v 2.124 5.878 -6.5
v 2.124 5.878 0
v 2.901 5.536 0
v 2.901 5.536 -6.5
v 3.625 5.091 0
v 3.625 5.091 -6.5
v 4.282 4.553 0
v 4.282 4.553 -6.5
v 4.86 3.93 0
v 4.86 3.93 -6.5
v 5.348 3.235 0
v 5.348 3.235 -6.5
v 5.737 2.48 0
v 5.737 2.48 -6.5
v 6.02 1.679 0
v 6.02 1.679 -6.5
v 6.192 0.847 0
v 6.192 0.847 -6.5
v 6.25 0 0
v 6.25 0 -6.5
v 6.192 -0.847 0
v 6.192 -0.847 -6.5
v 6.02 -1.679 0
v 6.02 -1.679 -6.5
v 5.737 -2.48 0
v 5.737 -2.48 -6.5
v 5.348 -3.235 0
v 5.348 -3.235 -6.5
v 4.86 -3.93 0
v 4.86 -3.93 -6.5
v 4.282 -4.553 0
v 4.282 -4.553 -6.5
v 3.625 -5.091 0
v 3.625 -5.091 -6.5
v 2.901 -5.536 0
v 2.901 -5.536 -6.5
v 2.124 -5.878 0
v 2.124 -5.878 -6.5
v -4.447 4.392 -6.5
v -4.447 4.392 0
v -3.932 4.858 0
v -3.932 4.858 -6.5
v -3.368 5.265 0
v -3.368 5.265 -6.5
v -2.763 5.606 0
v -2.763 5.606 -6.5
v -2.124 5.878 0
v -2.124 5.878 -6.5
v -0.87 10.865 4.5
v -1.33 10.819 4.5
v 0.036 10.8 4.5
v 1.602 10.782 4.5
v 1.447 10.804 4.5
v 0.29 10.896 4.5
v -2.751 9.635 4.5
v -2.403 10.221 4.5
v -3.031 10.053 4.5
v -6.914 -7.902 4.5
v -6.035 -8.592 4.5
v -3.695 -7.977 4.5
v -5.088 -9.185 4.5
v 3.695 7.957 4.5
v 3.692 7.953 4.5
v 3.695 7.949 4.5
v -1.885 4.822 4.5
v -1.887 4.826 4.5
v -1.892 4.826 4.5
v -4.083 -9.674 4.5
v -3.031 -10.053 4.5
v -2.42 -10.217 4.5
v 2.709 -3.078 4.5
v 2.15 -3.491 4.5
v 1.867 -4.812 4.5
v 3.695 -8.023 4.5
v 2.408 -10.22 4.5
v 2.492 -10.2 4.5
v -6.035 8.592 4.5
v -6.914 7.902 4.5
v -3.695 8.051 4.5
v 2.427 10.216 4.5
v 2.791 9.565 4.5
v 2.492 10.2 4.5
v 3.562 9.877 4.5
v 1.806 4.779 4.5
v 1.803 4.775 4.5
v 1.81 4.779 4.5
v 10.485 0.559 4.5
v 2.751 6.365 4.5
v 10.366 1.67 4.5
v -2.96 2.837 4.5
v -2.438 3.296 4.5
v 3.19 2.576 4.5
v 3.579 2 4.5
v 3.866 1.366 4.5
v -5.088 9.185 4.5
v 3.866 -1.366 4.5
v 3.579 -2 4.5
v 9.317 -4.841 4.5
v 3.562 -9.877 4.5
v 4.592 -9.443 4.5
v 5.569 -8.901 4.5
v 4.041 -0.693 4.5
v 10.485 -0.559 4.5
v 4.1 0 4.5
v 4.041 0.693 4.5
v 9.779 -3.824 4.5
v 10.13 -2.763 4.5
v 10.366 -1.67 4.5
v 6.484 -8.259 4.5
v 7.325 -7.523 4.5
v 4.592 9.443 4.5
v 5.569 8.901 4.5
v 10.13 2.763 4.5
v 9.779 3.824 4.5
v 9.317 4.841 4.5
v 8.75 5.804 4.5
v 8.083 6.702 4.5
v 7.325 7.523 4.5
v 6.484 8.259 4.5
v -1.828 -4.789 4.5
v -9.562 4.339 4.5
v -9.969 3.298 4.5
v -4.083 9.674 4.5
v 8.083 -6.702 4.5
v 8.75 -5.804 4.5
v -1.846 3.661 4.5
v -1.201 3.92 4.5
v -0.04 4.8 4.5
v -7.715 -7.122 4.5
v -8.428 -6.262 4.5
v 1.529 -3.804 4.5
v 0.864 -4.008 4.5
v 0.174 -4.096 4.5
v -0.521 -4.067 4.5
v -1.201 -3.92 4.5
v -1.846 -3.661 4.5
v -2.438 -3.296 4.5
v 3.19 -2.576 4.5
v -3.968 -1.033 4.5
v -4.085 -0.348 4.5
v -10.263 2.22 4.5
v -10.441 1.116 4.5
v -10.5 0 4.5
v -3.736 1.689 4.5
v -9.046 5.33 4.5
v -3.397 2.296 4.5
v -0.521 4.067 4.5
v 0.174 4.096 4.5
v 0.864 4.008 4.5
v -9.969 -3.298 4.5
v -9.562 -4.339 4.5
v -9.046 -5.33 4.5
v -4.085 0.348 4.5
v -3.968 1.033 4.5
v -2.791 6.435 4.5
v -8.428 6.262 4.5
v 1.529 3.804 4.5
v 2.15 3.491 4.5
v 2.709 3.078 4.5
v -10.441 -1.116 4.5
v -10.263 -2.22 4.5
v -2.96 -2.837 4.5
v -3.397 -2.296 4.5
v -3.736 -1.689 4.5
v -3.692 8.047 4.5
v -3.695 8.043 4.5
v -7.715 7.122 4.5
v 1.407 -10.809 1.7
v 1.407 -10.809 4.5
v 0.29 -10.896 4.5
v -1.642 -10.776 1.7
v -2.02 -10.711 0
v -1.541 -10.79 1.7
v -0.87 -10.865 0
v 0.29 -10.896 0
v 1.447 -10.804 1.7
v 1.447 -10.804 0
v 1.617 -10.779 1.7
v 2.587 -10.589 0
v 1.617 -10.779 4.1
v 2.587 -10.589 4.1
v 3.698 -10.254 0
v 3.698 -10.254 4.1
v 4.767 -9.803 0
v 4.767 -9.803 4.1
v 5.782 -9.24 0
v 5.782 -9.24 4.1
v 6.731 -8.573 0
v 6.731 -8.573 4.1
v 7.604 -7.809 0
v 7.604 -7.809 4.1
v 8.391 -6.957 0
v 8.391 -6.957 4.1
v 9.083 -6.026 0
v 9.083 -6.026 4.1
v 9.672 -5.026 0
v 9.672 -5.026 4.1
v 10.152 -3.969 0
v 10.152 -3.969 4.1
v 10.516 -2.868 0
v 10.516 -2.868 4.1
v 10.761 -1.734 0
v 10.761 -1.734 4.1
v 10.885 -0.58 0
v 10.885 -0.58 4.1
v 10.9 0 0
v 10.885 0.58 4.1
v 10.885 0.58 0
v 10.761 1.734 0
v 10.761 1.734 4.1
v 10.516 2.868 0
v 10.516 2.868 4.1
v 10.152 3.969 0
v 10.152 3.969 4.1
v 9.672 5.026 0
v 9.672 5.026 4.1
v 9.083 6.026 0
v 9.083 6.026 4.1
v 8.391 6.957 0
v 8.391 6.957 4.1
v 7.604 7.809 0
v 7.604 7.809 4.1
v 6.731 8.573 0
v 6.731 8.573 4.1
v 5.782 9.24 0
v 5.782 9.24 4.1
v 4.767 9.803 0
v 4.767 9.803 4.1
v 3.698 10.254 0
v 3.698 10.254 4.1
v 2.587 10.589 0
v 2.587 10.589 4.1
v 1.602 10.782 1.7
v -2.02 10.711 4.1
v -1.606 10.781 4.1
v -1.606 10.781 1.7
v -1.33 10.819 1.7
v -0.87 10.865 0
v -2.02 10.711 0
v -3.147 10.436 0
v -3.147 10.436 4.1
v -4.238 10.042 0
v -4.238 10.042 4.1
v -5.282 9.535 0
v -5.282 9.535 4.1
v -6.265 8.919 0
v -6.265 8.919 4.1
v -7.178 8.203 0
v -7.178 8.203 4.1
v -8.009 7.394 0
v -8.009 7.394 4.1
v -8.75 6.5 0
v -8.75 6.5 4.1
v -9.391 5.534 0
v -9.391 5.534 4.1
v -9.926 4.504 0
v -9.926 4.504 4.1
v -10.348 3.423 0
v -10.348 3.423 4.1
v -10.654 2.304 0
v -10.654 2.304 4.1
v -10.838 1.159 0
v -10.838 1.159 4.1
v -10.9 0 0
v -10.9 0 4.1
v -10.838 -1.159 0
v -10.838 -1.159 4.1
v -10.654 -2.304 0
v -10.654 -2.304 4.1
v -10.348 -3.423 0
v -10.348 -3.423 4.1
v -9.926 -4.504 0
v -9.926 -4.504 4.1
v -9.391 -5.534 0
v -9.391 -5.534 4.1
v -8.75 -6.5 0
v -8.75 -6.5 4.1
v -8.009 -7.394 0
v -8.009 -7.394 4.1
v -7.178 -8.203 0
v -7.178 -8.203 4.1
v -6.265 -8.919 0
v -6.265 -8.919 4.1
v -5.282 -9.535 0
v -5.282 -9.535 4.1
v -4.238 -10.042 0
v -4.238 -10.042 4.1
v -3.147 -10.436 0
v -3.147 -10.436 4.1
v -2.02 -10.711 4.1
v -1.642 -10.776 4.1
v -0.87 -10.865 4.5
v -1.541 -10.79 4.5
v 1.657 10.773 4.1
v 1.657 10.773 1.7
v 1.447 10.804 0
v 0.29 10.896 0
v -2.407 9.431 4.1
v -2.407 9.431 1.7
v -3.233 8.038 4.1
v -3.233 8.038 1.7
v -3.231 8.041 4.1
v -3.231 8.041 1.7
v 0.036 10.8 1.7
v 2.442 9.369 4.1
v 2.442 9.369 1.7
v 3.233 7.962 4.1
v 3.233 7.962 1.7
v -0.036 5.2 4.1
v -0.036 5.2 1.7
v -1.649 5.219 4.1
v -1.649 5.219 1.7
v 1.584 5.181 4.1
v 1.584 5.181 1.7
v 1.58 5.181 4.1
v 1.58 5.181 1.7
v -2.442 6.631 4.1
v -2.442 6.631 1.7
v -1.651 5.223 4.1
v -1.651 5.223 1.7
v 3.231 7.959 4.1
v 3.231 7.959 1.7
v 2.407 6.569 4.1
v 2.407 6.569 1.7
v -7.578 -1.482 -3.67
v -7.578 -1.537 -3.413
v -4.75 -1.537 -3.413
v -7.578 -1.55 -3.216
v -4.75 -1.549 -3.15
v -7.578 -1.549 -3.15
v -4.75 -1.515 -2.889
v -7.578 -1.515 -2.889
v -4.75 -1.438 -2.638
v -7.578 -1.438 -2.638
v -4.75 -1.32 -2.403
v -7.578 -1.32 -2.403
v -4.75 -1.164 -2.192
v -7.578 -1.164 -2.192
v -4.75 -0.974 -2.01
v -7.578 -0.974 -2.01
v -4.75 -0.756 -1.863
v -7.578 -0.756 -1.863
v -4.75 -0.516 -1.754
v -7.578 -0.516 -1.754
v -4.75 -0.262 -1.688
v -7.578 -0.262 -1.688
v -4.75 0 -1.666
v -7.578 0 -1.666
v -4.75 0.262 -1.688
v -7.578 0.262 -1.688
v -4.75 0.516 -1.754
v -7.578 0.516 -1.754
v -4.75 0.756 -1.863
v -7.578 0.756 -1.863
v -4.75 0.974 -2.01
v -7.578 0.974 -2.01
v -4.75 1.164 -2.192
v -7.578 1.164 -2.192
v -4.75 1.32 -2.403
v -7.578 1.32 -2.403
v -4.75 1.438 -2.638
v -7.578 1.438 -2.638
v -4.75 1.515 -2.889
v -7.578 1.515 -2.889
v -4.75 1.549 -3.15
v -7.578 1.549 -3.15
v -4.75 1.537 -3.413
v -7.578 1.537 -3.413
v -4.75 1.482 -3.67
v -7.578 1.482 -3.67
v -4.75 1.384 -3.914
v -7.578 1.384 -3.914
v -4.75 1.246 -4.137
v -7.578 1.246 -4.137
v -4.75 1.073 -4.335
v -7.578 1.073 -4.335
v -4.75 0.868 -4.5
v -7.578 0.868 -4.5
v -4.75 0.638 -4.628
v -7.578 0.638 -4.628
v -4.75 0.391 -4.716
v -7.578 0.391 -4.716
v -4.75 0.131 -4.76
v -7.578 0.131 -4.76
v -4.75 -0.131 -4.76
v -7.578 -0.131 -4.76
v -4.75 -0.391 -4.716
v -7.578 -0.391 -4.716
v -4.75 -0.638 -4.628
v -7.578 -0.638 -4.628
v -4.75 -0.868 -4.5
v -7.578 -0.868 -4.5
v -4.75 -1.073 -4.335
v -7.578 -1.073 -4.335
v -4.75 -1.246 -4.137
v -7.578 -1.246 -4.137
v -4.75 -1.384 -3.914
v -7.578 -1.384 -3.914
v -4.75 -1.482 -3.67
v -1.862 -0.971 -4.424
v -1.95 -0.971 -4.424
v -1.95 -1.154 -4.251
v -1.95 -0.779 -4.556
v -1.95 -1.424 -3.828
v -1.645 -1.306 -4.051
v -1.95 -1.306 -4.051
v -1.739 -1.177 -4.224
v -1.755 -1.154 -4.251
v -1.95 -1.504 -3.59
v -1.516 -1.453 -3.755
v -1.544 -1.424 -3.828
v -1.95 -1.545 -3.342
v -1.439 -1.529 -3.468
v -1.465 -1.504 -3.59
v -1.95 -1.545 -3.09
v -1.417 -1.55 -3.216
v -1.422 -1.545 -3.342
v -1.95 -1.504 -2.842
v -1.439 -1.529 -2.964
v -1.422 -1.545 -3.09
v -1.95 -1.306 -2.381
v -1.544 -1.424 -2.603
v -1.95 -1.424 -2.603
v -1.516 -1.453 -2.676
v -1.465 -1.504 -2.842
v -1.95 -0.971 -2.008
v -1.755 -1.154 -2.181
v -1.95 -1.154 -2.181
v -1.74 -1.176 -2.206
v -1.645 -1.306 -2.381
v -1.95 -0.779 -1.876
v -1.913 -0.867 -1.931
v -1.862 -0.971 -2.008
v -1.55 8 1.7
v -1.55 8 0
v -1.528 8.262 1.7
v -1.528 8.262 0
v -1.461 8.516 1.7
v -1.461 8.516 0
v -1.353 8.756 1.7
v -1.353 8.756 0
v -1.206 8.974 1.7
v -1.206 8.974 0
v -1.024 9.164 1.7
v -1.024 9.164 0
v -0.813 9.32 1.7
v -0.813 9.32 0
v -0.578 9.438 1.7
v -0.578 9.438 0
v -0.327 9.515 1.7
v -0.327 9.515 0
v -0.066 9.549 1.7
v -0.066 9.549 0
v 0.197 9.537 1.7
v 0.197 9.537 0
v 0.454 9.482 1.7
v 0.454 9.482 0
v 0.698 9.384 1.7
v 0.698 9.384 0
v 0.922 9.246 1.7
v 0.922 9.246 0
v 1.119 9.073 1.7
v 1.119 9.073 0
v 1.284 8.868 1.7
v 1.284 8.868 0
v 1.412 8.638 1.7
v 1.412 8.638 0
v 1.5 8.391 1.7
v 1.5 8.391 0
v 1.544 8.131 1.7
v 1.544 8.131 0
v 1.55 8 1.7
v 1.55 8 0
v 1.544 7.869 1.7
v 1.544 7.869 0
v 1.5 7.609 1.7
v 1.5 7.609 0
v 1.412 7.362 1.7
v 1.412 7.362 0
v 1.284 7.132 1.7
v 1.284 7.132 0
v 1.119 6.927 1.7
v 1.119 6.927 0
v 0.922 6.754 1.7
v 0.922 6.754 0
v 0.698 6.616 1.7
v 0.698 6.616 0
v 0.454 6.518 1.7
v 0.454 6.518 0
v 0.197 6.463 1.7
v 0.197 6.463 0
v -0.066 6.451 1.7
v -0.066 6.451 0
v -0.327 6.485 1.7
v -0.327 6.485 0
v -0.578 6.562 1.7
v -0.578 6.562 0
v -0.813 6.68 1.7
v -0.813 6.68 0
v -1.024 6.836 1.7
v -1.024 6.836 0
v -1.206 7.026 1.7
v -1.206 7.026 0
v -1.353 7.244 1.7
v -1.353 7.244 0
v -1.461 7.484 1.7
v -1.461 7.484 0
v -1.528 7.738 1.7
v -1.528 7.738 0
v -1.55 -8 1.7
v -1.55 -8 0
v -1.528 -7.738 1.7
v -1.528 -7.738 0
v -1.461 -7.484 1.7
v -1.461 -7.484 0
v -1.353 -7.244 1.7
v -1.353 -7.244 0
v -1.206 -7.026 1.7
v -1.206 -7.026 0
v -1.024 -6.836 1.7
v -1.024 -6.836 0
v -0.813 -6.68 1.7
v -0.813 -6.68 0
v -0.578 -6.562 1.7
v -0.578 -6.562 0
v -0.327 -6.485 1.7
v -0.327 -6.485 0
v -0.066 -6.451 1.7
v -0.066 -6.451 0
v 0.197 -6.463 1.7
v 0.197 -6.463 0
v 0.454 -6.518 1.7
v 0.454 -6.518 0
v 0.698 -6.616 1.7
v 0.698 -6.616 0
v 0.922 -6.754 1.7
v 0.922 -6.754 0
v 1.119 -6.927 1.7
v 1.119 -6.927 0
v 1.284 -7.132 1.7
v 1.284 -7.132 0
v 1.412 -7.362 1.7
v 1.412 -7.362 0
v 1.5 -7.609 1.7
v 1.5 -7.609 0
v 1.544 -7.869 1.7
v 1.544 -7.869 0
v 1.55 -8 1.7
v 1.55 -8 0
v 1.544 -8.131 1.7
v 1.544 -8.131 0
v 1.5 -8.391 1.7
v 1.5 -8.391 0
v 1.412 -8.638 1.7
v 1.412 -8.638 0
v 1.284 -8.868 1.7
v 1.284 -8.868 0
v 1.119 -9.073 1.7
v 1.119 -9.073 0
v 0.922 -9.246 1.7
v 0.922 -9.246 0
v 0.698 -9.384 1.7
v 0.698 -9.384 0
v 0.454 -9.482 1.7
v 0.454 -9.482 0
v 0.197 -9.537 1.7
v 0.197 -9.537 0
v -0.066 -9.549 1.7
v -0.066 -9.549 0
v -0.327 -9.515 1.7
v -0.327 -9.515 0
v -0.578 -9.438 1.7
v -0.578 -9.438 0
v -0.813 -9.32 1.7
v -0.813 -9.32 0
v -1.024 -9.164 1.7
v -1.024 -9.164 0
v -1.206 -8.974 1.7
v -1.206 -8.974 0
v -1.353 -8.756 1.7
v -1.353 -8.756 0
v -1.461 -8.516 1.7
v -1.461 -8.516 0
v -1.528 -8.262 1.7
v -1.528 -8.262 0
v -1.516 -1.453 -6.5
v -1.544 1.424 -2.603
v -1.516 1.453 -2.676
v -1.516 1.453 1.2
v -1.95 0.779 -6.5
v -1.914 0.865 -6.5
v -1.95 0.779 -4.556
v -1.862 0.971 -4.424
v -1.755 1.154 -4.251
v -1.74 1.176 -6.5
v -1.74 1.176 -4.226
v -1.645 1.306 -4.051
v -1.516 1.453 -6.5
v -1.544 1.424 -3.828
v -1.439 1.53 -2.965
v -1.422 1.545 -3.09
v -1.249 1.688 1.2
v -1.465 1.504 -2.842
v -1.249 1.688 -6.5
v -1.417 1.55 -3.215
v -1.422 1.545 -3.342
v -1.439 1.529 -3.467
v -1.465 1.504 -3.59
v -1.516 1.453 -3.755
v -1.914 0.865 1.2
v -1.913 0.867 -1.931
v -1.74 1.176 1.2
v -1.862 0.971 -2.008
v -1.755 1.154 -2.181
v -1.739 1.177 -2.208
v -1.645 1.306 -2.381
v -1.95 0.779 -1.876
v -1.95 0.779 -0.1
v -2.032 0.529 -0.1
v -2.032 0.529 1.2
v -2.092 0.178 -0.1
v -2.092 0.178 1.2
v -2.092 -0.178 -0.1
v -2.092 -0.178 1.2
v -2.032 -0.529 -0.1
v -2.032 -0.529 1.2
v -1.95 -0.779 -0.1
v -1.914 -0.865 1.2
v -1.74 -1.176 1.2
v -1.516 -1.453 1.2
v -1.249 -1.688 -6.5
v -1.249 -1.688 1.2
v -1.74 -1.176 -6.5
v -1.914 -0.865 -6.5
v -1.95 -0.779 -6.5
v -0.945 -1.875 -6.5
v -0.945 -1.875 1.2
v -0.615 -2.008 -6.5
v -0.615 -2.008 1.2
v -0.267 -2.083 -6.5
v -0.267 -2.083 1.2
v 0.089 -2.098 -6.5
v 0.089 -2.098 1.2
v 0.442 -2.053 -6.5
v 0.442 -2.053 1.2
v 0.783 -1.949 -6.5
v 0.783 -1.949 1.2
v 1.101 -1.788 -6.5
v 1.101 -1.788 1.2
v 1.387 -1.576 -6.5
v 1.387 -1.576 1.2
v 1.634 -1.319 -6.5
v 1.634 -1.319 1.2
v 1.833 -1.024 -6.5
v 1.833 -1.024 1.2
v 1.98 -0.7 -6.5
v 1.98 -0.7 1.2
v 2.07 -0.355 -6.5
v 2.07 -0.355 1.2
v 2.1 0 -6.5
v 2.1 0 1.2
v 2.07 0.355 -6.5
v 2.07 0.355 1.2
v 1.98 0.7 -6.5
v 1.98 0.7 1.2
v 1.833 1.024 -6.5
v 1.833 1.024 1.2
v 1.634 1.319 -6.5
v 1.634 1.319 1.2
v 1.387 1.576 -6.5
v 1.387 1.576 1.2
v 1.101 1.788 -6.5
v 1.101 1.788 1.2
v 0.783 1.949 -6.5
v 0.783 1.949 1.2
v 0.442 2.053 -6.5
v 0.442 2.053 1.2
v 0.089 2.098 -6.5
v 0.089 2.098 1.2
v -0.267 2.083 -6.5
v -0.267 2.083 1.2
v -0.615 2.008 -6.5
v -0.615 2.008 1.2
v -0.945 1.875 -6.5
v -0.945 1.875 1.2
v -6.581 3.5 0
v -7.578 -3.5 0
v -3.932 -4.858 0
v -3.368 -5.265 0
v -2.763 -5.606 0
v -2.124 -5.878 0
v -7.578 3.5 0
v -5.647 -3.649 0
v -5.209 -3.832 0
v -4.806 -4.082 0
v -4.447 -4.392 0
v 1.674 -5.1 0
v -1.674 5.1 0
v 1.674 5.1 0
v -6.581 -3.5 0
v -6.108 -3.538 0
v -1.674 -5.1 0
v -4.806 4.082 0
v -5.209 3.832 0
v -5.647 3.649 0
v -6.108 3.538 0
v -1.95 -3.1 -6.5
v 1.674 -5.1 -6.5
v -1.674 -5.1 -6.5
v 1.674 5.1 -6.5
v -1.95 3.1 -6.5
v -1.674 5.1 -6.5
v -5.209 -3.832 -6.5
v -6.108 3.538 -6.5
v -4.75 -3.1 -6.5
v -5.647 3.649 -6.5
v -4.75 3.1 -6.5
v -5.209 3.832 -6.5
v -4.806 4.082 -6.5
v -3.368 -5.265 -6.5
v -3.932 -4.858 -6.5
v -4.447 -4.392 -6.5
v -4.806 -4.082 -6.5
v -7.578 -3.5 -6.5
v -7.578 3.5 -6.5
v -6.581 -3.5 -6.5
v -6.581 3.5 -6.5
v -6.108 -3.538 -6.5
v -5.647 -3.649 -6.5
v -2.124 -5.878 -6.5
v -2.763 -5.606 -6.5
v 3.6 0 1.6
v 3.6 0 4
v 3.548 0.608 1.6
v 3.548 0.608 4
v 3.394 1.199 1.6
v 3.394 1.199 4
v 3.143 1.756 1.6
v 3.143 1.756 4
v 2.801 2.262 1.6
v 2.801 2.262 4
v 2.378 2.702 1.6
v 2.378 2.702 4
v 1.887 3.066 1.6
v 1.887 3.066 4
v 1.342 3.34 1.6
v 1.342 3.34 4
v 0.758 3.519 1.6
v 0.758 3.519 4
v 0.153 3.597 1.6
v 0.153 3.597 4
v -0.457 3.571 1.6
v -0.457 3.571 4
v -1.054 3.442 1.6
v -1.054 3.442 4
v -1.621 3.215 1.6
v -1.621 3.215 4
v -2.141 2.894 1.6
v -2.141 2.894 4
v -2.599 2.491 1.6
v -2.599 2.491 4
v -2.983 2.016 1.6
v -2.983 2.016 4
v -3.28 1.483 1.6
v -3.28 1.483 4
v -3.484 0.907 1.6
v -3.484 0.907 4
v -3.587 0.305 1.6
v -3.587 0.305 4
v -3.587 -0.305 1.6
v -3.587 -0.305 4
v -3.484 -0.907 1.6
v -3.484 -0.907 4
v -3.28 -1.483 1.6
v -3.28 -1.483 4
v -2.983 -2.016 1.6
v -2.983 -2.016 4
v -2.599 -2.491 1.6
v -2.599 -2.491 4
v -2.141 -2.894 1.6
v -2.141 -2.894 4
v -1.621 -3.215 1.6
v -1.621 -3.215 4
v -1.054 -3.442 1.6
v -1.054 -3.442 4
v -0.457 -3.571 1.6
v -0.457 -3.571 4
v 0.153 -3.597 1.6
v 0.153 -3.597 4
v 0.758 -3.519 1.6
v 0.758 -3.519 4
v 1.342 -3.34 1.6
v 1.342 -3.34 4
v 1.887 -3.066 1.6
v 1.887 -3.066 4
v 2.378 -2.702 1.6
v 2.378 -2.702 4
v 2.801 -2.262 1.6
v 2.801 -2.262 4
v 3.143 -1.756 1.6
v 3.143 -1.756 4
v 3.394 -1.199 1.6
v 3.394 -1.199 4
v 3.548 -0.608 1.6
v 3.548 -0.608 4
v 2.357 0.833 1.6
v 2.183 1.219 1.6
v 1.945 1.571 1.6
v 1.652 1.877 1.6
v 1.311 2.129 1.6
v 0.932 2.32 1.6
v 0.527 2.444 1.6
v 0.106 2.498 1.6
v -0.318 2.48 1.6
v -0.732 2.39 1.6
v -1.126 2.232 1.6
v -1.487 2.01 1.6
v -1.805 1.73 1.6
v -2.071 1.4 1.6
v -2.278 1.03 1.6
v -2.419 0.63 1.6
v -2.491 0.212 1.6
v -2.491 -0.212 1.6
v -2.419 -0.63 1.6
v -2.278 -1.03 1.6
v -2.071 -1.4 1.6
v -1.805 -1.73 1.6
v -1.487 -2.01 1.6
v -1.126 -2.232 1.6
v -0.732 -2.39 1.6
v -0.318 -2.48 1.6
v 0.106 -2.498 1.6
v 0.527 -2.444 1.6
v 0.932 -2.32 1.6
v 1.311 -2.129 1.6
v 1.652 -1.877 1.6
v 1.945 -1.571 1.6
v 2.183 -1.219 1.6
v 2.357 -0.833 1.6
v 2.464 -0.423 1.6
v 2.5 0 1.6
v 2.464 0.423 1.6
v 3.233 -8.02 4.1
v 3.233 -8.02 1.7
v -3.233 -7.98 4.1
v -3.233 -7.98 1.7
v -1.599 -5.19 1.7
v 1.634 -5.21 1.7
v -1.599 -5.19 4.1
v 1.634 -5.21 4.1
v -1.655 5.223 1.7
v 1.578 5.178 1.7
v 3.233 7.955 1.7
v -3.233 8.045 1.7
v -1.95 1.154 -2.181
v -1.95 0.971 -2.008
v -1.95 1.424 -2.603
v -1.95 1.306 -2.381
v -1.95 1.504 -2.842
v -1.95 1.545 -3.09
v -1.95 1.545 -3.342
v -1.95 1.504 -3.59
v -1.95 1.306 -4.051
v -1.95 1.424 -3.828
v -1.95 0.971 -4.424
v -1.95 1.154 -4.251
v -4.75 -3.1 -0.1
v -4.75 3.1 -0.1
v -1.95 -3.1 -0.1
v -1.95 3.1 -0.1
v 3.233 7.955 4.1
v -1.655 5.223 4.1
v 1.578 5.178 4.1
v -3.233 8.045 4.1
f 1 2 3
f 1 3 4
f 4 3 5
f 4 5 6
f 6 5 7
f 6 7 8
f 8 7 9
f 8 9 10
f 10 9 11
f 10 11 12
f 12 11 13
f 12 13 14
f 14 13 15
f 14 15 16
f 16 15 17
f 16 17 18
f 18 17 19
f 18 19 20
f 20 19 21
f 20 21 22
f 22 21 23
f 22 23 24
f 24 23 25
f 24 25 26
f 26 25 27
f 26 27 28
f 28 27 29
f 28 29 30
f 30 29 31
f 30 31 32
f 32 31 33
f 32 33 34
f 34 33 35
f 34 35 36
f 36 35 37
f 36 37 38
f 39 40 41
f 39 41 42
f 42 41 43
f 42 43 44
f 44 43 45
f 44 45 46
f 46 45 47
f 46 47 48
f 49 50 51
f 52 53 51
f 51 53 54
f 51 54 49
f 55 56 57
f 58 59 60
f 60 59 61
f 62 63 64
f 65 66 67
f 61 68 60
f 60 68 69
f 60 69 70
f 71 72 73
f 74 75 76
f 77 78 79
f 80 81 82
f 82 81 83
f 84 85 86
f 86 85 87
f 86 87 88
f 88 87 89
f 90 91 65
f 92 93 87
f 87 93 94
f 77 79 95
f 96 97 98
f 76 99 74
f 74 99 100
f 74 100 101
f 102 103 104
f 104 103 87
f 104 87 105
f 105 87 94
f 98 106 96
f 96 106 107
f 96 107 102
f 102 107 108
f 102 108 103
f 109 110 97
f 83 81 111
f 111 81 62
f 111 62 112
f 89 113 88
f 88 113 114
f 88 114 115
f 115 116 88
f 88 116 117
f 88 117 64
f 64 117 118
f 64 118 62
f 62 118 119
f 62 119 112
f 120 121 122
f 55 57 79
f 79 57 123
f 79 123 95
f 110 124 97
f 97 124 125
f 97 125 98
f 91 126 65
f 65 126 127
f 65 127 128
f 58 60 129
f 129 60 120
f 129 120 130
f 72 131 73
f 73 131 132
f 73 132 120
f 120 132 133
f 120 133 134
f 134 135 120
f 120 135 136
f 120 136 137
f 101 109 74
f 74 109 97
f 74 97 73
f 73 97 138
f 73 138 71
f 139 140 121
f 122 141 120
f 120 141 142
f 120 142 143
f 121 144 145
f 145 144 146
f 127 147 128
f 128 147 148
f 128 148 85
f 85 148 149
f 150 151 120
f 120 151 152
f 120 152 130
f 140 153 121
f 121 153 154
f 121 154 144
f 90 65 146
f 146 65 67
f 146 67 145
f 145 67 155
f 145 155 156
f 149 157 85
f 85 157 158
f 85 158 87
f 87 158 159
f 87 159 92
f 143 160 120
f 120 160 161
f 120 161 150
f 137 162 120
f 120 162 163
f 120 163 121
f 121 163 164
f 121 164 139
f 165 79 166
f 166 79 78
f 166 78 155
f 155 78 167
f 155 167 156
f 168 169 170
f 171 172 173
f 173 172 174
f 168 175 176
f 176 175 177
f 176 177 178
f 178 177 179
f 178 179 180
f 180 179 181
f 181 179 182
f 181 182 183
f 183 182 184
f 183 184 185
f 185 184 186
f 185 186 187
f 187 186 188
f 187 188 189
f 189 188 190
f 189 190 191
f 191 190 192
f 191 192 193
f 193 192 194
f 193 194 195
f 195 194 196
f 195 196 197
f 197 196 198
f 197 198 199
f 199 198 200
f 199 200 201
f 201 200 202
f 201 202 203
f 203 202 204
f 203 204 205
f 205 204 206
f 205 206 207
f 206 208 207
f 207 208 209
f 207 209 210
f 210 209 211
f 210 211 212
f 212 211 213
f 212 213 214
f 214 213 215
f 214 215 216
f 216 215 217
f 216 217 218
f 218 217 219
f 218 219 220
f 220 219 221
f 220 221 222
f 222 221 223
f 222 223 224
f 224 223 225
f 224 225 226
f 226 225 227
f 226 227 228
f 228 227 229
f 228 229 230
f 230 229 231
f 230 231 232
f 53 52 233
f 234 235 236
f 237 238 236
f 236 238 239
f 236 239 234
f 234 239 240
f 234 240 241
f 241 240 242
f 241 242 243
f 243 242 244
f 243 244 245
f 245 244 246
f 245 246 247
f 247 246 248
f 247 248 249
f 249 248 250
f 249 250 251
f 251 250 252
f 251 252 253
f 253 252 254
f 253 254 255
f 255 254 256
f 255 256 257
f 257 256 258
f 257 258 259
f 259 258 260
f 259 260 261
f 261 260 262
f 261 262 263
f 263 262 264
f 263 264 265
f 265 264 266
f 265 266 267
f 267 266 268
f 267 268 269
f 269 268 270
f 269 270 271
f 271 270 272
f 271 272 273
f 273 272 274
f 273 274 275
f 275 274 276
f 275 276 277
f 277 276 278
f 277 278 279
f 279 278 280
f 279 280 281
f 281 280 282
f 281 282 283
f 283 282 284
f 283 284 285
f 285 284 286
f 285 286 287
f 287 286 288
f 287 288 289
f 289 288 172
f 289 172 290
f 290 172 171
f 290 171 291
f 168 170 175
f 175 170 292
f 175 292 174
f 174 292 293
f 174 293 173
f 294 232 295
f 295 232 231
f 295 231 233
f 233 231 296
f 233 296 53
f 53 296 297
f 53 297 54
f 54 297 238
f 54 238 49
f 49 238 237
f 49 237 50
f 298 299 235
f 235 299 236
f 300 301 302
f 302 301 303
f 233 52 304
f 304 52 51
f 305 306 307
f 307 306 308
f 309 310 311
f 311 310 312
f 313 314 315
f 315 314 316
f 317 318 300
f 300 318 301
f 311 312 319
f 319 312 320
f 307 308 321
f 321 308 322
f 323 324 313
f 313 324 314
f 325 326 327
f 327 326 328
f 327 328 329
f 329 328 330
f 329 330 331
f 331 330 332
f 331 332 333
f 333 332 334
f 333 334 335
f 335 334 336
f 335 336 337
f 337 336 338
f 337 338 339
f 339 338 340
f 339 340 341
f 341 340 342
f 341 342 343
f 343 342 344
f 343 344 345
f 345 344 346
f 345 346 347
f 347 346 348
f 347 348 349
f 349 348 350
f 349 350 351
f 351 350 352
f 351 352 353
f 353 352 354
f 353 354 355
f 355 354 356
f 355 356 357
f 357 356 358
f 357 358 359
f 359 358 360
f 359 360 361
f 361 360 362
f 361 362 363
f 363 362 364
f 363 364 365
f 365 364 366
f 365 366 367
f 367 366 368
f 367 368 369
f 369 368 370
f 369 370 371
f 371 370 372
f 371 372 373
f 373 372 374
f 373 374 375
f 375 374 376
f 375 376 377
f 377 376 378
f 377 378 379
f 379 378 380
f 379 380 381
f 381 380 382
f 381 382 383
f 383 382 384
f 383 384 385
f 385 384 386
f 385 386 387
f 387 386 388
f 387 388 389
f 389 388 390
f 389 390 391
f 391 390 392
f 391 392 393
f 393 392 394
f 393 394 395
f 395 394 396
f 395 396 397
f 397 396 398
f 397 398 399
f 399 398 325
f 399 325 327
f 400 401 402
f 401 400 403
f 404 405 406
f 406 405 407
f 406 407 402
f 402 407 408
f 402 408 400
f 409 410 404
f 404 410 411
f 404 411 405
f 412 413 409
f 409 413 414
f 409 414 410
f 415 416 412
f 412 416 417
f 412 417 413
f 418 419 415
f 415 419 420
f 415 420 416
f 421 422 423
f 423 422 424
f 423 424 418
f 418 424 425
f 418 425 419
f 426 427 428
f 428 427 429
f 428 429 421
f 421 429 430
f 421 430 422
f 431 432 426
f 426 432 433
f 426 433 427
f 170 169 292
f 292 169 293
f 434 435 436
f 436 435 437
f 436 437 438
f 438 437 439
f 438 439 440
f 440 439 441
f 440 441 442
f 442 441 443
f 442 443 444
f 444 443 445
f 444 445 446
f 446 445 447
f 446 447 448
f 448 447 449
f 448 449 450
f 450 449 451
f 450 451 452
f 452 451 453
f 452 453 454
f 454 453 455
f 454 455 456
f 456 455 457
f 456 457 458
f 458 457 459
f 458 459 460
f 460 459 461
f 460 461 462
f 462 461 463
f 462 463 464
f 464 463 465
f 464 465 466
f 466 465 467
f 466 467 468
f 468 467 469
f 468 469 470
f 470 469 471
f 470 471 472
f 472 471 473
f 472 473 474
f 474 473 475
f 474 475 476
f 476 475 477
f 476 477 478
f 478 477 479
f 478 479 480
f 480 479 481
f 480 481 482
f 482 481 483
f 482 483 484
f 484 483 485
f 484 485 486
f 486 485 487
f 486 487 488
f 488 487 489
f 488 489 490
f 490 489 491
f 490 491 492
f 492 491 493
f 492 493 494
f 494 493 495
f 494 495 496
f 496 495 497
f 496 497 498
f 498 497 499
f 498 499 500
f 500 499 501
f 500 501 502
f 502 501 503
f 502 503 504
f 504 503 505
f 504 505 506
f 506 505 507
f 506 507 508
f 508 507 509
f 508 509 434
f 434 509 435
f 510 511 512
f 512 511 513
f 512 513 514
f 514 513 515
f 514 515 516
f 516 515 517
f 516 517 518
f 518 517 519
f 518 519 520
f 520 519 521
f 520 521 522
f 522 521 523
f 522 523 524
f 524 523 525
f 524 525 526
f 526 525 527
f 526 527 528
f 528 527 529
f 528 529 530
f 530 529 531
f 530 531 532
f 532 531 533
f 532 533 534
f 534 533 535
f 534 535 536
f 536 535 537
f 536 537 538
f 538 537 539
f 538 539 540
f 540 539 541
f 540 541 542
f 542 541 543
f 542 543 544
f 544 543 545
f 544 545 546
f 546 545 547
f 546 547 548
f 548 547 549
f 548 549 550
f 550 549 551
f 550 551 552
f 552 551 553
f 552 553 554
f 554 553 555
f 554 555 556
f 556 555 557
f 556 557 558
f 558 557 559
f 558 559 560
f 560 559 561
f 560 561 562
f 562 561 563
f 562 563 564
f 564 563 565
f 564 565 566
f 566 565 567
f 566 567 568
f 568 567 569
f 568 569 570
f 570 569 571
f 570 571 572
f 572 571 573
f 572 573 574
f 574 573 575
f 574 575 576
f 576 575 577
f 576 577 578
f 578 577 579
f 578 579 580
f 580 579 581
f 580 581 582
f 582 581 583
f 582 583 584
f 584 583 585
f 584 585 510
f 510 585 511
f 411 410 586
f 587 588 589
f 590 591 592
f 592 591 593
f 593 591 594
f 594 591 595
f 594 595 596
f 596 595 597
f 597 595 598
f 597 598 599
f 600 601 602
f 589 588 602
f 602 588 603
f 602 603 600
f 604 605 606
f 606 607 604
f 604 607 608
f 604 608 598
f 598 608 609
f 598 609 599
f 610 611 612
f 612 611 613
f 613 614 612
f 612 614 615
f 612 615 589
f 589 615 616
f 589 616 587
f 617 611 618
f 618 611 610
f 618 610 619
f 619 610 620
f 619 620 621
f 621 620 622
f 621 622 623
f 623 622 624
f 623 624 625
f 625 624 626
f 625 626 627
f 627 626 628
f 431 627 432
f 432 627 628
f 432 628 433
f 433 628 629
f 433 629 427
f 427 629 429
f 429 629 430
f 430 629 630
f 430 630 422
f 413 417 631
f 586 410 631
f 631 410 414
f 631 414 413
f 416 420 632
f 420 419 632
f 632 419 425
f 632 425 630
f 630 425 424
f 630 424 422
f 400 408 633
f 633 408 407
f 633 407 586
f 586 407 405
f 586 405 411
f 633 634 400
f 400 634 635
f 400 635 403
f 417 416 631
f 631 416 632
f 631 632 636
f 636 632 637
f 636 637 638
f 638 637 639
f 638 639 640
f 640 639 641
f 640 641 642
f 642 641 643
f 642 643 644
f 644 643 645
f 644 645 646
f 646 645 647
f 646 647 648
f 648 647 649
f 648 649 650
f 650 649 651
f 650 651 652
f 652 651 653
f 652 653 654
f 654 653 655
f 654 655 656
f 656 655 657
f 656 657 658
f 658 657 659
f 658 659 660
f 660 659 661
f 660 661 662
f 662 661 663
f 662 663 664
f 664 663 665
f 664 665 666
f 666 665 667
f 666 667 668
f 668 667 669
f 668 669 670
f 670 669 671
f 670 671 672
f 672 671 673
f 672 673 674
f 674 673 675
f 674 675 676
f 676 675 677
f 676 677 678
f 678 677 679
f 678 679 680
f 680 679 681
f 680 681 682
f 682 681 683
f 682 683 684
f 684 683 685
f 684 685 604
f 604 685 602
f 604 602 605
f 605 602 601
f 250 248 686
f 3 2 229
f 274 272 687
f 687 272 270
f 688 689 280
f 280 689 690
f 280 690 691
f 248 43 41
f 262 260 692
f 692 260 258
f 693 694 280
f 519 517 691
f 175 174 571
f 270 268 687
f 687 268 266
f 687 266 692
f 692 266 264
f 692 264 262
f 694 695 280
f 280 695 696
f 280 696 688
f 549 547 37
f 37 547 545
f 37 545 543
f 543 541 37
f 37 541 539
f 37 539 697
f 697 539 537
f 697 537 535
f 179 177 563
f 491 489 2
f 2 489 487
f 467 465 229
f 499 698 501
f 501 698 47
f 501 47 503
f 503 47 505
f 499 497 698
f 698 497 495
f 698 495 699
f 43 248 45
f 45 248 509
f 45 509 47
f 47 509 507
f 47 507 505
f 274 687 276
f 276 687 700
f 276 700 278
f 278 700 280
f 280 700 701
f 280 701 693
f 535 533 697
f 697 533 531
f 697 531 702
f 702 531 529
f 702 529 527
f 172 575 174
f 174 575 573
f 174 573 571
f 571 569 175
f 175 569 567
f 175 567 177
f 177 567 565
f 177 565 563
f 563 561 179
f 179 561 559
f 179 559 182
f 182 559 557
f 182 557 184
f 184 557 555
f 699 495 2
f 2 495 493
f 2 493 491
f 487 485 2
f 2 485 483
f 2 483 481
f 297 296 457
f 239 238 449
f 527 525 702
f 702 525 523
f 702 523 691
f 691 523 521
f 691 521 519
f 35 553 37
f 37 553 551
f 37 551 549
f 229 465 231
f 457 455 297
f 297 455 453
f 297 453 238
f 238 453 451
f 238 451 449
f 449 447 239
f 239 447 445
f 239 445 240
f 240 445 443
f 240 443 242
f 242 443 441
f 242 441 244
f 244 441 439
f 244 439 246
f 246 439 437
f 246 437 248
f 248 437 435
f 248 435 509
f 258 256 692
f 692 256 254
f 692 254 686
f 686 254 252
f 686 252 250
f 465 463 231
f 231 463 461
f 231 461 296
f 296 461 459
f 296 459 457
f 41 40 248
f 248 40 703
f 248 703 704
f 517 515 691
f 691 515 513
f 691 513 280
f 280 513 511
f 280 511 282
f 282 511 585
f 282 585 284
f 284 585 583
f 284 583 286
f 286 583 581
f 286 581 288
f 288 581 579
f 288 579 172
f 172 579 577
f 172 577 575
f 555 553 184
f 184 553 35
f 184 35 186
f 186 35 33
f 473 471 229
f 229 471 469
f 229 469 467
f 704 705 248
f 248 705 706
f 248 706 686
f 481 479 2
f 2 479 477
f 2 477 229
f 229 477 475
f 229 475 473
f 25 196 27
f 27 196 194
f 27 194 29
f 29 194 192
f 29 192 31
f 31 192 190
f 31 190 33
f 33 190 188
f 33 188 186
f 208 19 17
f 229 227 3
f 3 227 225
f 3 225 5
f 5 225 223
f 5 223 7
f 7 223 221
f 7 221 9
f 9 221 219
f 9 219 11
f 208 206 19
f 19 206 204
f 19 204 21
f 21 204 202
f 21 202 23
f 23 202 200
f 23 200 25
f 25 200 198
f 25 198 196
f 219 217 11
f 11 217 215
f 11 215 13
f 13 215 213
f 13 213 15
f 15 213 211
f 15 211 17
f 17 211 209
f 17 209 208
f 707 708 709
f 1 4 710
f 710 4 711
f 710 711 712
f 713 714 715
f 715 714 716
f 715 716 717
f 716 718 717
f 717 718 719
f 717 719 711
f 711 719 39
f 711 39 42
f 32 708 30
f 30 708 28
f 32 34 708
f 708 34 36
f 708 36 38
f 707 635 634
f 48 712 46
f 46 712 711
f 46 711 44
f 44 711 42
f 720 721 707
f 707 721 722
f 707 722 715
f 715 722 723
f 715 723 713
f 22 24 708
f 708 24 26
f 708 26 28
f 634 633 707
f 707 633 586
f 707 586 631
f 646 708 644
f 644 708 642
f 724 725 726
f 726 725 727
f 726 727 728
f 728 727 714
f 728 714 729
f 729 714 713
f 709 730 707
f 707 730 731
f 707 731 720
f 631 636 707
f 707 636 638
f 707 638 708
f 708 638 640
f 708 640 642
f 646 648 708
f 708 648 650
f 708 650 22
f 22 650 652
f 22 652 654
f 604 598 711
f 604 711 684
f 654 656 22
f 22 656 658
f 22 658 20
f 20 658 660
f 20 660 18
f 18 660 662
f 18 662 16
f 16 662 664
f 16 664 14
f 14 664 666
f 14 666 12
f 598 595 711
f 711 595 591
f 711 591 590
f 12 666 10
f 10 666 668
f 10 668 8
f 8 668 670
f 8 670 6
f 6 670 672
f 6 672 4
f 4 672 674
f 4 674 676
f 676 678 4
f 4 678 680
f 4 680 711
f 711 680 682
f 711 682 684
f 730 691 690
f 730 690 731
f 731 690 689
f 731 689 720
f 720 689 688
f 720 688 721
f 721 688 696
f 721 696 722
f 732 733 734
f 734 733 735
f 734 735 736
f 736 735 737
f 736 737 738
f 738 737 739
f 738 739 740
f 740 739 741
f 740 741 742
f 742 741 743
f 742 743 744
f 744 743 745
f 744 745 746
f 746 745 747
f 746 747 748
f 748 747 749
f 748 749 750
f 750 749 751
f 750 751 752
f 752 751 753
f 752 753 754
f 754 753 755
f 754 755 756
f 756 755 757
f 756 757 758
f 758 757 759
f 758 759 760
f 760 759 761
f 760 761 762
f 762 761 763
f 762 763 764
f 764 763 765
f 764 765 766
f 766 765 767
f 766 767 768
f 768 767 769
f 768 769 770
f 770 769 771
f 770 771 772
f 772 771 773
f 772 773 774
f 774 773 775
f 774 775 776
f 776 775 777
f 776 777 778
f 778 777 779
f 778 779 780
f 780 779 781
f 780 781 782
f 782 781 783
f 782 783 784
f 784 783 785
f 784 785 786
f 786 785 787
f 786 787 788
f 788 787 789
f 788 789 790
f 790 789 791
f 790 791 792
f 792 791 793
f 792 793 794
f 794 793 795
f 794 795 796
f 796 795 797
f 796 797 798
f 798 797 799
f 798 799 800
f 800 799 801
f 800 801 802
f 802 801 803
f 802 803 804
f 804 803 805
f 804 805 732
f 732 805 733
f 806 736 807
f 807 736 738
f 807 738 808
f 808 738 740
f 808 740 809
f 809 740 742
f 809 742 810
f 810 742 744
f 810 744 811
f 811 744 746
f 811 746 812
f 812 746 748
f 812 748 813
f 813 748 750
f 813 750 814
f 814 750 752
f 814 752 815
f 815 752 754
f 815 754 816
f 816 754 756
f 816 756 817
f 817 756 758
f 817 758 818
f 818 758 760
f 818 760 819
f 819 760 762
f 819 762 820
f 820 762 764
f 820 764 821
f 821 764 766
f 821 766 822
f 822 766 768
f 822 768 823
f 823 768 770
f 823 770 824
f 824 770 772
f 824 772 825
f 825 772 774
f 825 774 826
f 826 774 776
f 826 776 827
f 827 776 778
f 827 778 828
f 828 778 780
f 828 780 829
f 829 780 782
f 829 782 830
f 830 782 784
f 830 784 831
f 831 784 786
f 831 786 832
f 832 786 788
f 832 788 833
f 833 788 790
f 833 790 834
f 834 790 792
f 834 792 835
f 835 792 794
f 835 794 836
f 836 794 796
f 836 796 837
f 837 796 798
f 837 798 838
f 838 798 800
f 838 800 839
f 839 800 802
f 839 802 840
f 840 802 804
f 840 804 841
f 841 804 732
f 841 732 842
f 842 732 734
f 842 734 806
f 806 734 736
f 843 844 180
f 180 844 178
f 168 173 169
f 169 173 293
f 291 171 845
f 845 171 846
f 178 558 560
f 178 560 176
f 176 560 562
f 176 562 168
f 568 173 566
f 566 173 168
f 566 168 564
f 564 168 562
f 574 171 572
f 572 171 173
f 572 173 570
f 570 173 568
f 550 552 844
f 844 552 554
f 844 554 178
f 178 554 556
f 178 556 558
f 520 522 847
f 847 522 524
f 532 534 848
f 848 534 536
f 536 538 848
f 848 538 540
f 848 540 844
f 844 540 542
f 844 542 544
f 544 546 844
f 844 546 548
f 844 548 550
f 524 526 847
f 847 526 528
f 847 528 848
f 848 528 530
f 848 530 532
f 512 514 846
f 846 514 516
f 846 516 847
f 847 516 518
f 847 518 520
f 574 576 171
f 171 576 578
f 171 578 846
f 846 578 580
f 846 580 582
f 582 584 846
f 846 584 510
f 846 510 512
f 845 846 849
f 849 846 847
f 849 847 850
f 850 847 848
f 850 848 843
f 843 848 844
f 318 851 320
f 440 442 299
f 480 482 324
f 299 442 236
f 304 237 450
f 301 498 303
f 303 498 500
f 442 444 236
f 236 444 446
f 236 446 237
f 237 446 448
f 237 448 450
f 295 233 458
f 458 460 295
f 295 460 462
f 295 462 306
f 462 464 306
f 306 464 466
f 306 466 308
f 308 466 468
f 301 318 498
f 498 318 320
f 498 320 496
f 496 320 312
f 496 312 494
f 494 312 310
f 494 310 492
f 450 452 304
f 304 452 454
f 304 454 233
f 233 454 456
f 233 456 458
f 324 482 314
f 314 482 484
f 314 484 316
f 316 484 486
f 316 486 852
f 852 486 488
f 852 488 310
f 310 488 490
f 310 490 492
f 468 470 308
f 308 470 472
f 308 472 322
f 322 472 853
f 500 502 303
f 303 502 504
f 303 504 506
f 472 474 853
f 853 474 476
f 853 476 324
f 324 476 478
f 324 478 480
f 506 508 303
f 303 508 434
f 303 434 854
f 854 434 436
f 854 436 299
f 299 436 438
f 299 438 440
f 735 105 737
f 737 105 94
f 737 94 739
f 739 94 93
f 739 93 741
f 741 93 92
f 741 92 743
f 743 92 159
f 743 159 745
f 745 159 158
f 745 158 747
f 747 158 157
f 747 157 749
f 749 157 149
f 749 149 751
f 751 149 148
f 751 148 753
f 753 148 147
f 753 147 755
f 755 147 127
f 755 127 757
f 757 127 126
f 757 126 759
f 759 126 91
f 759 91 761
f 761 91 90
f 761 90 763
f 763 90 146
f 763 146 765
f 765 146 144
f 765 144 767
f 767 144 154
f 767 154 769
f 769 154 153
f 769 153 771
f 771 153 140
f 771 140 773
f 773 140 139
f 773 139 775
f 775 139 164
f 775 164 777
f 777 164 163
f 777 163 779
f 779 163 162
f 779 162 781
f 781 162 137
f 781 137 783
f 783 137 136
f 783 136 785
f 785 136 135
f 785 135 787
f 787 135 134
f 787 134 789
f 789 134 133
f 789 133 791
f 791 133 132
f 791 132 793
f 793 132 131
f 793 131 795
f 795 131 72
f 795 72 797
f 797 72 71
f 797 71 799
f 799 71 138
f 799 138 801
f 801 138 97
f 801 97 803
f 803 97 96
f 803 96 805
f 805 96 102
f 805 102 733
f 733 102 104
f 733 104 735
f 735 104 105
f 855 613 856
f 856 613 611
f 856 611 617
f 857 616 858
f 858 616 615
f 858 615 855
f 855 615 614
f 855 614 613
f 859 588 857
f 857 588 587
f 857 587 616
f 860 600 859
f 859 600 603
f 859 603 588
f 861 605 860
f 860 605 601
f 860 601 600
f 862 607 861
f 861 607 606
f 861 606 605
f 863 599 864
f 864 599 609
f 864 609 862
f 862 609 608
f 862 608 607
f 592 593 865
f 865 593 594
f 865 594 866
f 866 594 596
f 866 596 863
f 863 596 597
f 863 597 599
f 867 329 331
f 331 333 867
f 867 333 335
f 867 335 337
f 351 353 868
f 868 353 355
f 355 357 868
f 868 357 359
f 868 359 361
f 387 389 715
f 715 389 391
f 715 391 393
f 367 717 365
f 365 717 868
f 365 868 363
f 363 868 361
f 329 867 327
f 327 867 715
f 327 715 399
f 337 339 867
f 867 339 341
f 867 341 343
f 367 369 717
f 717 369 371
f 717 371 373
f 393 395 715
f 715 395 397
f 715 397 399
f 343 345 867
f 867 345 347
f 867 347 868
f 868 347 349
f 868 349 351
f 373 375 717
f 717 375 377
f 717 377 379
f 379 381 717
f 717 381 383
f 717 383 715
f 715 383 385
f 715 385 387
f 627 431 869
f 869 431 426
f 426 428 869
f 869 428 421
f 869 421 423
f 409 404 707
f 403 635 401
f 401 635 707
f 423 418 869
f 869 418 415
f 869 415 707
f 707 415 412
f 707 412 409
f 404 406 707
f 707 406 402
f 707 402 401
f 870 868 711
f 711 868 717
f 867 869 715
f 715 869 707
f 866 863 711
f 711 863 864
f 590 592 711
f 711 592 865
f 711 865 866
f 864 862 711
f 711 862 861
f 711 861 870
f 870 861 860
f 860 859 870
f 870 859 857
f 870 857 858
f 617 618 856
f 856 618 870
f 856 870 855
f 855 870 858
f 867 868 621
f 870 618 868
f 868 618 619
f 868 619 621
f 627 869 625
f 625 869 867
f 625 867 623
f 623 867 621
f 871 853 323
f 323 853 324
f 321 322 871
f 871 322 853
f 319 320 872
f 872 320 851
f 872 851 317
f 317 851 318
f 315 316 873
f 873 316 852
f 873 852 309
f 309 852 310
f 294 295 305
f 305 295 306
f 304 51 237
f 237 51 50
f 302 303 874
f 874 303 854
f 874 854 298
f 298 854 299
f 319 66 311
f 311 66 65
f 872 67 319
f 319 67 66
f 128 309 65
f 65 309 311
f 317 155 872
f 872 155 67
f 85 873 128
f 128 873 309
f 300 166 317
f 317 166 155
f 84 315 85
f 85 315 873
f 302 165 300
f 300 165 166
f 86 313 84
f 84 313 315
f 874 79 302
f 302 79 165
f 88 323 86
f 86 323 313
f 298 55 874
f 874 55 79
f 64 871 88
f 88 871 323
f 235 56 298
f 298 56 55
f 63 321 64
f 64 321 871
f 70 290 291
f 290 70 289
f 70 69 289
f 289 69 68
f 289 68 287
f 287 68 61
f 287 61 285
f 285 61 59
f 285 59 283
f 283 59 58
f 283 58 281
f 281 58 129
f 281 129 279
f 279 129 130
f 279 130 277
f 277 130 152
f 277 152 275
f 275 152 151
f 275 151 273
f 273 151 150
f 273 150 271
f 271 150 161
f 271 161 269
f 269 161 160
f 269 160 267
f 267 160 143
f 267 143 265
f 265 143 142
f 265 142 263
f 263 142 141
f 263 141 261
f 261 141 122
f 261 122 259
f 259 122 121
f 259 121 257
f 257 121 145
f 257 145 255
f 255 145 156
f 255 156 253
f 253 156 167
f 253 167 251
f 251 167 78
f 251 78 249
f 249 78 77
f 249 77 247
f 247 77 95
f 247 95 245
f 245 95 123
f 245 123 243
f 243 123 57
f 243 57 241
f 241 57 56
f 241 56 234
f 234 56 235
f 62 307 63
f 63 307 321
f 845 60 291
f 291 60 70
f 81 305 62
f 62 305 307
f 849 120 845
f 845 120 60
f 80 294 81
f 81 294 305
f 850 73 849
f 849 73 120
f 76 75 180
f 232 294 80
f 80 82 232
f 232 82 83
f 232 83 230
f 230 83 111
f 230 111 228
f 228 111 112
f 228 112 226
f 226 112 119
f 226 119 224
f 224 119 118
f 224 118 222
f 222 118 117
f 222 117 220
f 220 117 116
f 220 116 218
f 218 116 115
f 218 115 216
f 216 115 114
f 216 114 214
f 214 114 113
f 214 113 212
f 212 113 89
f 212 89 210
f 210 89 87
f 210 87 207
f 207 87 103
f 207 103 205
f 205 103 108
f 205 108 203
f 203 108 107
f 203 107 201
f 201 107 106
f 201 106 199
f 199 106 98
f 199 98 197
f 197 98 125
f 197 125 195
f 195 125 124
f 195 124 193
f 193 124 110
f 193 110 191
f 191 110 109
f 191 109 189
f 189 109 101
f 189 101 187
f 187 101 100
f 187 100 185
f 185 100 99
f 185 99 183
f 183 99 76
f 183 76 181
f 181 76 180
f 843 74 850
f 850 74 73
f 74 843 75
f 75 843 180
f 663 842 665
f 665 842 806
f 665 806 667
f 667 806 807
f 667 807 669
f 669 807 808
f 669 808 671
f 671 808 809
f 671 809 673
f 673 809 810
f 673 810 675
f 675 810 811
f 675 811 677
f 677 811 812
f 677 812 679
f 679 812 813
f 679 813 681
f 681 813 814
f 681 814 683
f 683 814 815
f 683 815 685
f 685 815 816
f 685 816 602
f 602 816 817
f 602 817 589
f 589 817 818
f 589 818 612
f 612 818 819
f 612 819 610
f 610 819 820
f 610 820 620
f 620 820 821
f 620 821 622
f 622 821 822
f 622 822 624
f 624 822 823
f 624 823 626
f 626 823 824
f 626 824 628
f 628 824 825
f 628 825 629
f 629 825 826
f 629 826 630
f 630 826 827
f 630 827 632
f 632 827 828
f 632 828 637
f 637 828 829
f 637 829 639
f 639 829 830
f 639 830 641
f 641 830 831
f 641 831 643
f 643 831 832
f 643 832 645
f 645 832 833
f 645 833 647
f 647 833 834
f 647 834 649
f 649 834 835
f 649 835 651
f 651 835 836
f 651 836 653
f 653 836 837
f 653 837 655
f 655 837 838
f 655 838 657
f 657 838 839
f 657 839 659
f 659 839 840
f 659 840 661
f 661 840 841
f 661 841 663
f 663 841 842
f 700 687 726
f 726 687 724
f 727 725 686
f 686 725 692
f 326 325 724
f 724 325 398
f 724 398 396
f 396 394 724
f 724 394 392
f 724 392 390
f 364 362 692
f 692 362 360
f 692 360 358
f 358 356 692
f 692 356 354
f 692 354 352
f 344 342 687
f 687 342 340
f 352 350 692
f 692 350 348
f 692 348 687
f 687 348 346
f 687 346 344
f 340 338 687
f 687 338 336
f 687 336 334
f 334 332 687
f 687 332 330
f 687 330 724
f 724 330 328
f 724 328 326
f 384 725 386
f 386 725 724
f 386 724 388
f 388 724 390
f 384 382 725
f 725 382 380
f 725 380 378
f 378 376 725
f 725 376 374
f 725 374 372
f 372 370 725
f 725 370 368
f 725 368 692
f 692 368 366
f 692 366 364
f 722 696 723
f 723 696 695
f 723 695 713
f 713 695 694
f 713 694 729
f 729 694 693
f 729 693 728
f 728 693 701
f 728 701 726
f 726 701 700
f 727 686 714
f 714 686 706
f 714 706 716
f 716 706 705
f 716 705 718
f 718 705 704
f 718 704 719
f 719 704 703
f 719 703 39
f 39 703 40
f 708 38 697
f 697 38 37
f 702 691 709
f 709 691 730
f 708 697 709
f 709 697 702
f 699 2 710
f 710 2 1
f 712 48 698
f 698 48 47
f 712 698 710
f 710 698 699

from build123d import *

# Parameters (mm, degrees)
SKETCH2_R           = 10.9
SKETCH2_R_2         = 1.55
BOSS_EXTRUDE1_DEPTH = 4.5
SKETCH3_R           = 6.25
SKETCH3_R_2         = 2.1
BOSS_EXTRUDE2_DEPTH = 6.5
CUT_EXTRUDE2_START  = -9.5
SKETCH6_R           = 2.1
CUT_EXTRUDE2_DEPTH  = 9.5
SKETCH7_R           = 3.6
CUT_EXTRUDE3_DEPTH  = 2.9
CUT_EXTRUDE4_DEPTH  = 2.8
CHAMFER2_SIZE       = 0.5
SKETCH11_R          = 1.55
CUT_EXTRUDE5_DEPTH  = 5.5
SKETCH14_W          = 2.8
SKETCH14_H          = 6.2
CUT_EXTRUDE6_DEPTH  = 6.4
CUT_EXTRUDE8_DEPTH  = 6.2
CHAMFER3_SIZE       = 0.4
CHAMFER4_SIZE       = 0.4
SKETCH19_W          = 2.5
SKETCH19_H          = 7
BOSS_EXTRUDE4_DEPTH = 10
FILLET5_R           = 3
CUT_EXTRUDE9_DEPTH  = 6.5
CUT_EXTRUDE10_START = -87
SKETCH21_R          = 1.55
CUT_EXTRUDE10_DEPTH = 87


with BuildPart() as part:
    # Sketch2 → Boss-Extrude1 (new body)
    with BuildSketch(Plane.XY):
        Circle(SKETCH2_R)
        with Locations((0, 8)):
            Circle(SKETCH2_R_2, mode=Mode.SUBTRACT)
        with Locations((0, -8)):
            Circle(SKETCH2_R_2, mode=Mode.SUBTRACT)
    extrude(amount=BOSS_EXTRUDE1_DEPTH)

    # Sketch3 → Boss-Extrude2 (add)
    with BuildSketch(Plane(origin=(0, 0, 0), x_dir=(-1, 0, 0), z_dir=(0, 0, -1))):
        with Locations(Location((0, 0, 0), (0, 0, 180))):
            Circle(SKETCH3_R)
        with Locations(Location((0, 0, 0), (0, 0, 180))):
            Circle(SKETCH3_R_2, mode=Mode.SUBTRACT)
    extrude(amount=BOSS_EXTRUDE2_DEPTH)

    # Sketch6 → Cut-Extrude2 (cut)
    with BuildSketch(Plane(origin=(0, 0, 0), x_dir=(-1, 0, 0), z_dir=(0, 0, -1)).offset(CUT_EXTRUDE2_START)):
        with Locations(Location((0, 0, 0), (0, 0, 180))):
            Circle(SKETCH6_R)
    extrude(amount=CUT_EXTRUDE2_DEPTH, mode=Mode.SUBTRACT)

    # Sketch7 → Cut-Extrude3 (cut)
    with BuildSketch(Plane.XY.offset(4.5)):
        Circle(SKETCH7_R)
    extrude(amount=-CUT_EXTRUDE3_DEPTH, mode=Mode.SUBTRACT)

    # Sketch8 → Cut-Extrude4 (cut)
    with BuildSketch(Plane.XY.offset(4.5)):
        Polygon((1.58395502, 5.181415279), (3.232943481, 7.962452926), (1.64898846, 10.781037646), (-1.58395502, 10.818584721), (-3.232943481, 8.037547074), (-1.64898846, 5.218962354), align=None)
        Polygon((3.233098906, -8.020119499), (1.633973451, -5.210113964), (-1.599125456, -5.189994464), (-3.233098906, -7.979880501), (-1.633973451, -10.789886036), (1.599125456, -10.810005536), align=None)
    extrude(amount=-CUT_EXTRUDE4_DEPTH, mode=Mode.SUBTRACT)

    # Chamfer2
    chamfer2_edges = [part.edges().sort_by_distance(p)[0] for p in [
        (-3.6, 0, 4.5),
    ]]
    chamfer(chamfer2_edges, length=CHAMFER2_SIZE)

    # Sketch11 → Cut-Extrude5 (cut, symmetric)
    with BuildSketch(Plane(origin=(-6.25, 0, 0), x_dir=(0, 1, 0), z_dir=(-1, 0, 0))):
        with Locations(Location((0, 3.215789821, 0), (0, 0, 270))):
            Circle(SKETCH11_R)
    extrude(amount=CUT_EXTRUDE5_DEPTH, both=True, mode=Mode.SUBTRACT)

    # Sketch14 → Cut-Extrude6 (cut)
    with BuildSketch(Plane(origin=(0, 0, -6.5), x_dir=(-1, 0, 0), z_dir=(0, 0, -1))):
        with Locations((3.35, 0)):
            Rectangle(SKETCH14_W, SKETCH14_H)
    extrude(amount=-CUT_EXTRUDE6_DEPTH, mode=Mode.SUBTRACT)

    # Sketch17 → Cut-Extrude8 (cut)
    with BuildSketch(Plane.XY.offset(1.7)):
        Polygon((1.655062081, 10.777427379), (-1.577791627, 10.822039496), (-3.232853707, 8.044612117), (-1.655062081, 5.222572621), (1.577791627, 5.177960504), (3.232853707, 7.955387883), align=None)
    extrude(amount=CUT_EXTRUDE8_DEPTH, mode=Mode.SUBTRACT)

    # Chamfer3
    chamfer3_edges = [part.edges().sort_by_distance(p)[0] for p in [
        (3.231903858, 7.96069959, 4.5),
        (-1.649987082, 5.220739361, 4.5),
        (1.581916776, 5.181438951, 4.5),
        (-3.231903858, 8.03930041, 4.5),
        (-3.231858971, 8.042832931, 4.5),
        (0.771107805, 5.189092426, 4.5),
        (2.049929575, 10.07116703, 4.5),
        (1.578835079, 5.179711564, 4.5),
        (3.231858971, 7.957167069, 4.5),
        (-2.81987127, 8.737654839, 4.5),
        (-2.048763464, 5.926747264, 4.5),
        (-1.653023892, 5.222544495, 4.5),
        (2.81987127, 7.262345161, 4.5),
        (-10.899984913, 0.01813521, 4.5),
        (8.259417425, -7.112807026, 4.5),
        (2.837704165, 8.665765509, 4.5),
        (-2.006564209, 10.105849554, 4.5),
        (-2.837704165, 7.334234491, 4.5),
        (-0.842282238, 5.20959335, 4.5),
        (1.995421926, 5.87535886, 4.5),
        (-2.437601998, -9.377738754, 4.5),
        (2.42507938, -9.399751703, 4.5),
        (2.433536179, -6.615116731, 4.5),
        (0.017423997, -5.200054214, 4.5),
        (-2.416112181, -6.584937483, 4.5),
    ]]
    chamfer(chamfer3_edges, length=CHAMFER3_SIZE)

    # Chamfer4
    chamfer4_edges = [part.edges().sort_by_distance(p)[0] for p in [
        (-2.1, 0, 1.6),
    ]]
    chamfer(chamfer4_edges, length=CHAMFER4_SIZE)

    # Sketch19 → Boss-Extrude4 (add)
    with BuildSketch(Plane(origin=(0, 0, -6.5), x_dir=(-1, 0, 0), z_dir=(0, 0, -1))):
        with Locations((6.327927724, 0)):
            Rectangle(SKETCH19_W, SKETCH19_H)
    extrude(amount=-BOSS_EXTRUDE4_DEPTH)

    # Fillet5
    fillet5_edges = [part.edges().sort_by_distance(p)[0] for p in [
        (-5.178078794, -3.5, -3.25),
        (-5.178078794, 3.5, -3.25),
    ]]
    fillet(fillet5_edges, radius=FILLET5_R)

    # Sketch20 → Cut-Extrude9 (cut)
    with BuildSketch(Plane(origin=(0, 0, -6.5), x_dir=(-1, 0, 0), z_dir=(0, 0, -1))):
        Polygon((1.674315781, 10.9), (-1.674315781, 10.9), (-3.348631561, 8), (-1.674315781, 5.1), (1.674315781, 5.1), (3.348631561, 8), align=None)
        Polygon((1.674315781, -5.1), (-1.674315781, -5.1), (-3.348631561, -8), (-1.674315781, -10.9), (1.674315781, -10.9), (3.348631561, -8), align=None)
    extrude(amount=-CUT_EXTRUDE9_DEPTH, mode=Mode.SUBTRACT)

    # Sketch21 → Cut-Extrude10 (cut)
    with BuildSketch(Plane(origin=(-5.077927724, 0, 0), x_dir=(0, 0, -1), z_dir=(1, 0, 0)).offset(CUT_EXTRUDE10_START)):
        with Locations(Location((3.215789821, 0, 0), (0, 0, 180))):
            Circle(SKETCH21_R)
    extrude(amount=CUT_EXTRUDE10_DEPTH, mode=Mode.SUBTRACT)


solid = part.part
